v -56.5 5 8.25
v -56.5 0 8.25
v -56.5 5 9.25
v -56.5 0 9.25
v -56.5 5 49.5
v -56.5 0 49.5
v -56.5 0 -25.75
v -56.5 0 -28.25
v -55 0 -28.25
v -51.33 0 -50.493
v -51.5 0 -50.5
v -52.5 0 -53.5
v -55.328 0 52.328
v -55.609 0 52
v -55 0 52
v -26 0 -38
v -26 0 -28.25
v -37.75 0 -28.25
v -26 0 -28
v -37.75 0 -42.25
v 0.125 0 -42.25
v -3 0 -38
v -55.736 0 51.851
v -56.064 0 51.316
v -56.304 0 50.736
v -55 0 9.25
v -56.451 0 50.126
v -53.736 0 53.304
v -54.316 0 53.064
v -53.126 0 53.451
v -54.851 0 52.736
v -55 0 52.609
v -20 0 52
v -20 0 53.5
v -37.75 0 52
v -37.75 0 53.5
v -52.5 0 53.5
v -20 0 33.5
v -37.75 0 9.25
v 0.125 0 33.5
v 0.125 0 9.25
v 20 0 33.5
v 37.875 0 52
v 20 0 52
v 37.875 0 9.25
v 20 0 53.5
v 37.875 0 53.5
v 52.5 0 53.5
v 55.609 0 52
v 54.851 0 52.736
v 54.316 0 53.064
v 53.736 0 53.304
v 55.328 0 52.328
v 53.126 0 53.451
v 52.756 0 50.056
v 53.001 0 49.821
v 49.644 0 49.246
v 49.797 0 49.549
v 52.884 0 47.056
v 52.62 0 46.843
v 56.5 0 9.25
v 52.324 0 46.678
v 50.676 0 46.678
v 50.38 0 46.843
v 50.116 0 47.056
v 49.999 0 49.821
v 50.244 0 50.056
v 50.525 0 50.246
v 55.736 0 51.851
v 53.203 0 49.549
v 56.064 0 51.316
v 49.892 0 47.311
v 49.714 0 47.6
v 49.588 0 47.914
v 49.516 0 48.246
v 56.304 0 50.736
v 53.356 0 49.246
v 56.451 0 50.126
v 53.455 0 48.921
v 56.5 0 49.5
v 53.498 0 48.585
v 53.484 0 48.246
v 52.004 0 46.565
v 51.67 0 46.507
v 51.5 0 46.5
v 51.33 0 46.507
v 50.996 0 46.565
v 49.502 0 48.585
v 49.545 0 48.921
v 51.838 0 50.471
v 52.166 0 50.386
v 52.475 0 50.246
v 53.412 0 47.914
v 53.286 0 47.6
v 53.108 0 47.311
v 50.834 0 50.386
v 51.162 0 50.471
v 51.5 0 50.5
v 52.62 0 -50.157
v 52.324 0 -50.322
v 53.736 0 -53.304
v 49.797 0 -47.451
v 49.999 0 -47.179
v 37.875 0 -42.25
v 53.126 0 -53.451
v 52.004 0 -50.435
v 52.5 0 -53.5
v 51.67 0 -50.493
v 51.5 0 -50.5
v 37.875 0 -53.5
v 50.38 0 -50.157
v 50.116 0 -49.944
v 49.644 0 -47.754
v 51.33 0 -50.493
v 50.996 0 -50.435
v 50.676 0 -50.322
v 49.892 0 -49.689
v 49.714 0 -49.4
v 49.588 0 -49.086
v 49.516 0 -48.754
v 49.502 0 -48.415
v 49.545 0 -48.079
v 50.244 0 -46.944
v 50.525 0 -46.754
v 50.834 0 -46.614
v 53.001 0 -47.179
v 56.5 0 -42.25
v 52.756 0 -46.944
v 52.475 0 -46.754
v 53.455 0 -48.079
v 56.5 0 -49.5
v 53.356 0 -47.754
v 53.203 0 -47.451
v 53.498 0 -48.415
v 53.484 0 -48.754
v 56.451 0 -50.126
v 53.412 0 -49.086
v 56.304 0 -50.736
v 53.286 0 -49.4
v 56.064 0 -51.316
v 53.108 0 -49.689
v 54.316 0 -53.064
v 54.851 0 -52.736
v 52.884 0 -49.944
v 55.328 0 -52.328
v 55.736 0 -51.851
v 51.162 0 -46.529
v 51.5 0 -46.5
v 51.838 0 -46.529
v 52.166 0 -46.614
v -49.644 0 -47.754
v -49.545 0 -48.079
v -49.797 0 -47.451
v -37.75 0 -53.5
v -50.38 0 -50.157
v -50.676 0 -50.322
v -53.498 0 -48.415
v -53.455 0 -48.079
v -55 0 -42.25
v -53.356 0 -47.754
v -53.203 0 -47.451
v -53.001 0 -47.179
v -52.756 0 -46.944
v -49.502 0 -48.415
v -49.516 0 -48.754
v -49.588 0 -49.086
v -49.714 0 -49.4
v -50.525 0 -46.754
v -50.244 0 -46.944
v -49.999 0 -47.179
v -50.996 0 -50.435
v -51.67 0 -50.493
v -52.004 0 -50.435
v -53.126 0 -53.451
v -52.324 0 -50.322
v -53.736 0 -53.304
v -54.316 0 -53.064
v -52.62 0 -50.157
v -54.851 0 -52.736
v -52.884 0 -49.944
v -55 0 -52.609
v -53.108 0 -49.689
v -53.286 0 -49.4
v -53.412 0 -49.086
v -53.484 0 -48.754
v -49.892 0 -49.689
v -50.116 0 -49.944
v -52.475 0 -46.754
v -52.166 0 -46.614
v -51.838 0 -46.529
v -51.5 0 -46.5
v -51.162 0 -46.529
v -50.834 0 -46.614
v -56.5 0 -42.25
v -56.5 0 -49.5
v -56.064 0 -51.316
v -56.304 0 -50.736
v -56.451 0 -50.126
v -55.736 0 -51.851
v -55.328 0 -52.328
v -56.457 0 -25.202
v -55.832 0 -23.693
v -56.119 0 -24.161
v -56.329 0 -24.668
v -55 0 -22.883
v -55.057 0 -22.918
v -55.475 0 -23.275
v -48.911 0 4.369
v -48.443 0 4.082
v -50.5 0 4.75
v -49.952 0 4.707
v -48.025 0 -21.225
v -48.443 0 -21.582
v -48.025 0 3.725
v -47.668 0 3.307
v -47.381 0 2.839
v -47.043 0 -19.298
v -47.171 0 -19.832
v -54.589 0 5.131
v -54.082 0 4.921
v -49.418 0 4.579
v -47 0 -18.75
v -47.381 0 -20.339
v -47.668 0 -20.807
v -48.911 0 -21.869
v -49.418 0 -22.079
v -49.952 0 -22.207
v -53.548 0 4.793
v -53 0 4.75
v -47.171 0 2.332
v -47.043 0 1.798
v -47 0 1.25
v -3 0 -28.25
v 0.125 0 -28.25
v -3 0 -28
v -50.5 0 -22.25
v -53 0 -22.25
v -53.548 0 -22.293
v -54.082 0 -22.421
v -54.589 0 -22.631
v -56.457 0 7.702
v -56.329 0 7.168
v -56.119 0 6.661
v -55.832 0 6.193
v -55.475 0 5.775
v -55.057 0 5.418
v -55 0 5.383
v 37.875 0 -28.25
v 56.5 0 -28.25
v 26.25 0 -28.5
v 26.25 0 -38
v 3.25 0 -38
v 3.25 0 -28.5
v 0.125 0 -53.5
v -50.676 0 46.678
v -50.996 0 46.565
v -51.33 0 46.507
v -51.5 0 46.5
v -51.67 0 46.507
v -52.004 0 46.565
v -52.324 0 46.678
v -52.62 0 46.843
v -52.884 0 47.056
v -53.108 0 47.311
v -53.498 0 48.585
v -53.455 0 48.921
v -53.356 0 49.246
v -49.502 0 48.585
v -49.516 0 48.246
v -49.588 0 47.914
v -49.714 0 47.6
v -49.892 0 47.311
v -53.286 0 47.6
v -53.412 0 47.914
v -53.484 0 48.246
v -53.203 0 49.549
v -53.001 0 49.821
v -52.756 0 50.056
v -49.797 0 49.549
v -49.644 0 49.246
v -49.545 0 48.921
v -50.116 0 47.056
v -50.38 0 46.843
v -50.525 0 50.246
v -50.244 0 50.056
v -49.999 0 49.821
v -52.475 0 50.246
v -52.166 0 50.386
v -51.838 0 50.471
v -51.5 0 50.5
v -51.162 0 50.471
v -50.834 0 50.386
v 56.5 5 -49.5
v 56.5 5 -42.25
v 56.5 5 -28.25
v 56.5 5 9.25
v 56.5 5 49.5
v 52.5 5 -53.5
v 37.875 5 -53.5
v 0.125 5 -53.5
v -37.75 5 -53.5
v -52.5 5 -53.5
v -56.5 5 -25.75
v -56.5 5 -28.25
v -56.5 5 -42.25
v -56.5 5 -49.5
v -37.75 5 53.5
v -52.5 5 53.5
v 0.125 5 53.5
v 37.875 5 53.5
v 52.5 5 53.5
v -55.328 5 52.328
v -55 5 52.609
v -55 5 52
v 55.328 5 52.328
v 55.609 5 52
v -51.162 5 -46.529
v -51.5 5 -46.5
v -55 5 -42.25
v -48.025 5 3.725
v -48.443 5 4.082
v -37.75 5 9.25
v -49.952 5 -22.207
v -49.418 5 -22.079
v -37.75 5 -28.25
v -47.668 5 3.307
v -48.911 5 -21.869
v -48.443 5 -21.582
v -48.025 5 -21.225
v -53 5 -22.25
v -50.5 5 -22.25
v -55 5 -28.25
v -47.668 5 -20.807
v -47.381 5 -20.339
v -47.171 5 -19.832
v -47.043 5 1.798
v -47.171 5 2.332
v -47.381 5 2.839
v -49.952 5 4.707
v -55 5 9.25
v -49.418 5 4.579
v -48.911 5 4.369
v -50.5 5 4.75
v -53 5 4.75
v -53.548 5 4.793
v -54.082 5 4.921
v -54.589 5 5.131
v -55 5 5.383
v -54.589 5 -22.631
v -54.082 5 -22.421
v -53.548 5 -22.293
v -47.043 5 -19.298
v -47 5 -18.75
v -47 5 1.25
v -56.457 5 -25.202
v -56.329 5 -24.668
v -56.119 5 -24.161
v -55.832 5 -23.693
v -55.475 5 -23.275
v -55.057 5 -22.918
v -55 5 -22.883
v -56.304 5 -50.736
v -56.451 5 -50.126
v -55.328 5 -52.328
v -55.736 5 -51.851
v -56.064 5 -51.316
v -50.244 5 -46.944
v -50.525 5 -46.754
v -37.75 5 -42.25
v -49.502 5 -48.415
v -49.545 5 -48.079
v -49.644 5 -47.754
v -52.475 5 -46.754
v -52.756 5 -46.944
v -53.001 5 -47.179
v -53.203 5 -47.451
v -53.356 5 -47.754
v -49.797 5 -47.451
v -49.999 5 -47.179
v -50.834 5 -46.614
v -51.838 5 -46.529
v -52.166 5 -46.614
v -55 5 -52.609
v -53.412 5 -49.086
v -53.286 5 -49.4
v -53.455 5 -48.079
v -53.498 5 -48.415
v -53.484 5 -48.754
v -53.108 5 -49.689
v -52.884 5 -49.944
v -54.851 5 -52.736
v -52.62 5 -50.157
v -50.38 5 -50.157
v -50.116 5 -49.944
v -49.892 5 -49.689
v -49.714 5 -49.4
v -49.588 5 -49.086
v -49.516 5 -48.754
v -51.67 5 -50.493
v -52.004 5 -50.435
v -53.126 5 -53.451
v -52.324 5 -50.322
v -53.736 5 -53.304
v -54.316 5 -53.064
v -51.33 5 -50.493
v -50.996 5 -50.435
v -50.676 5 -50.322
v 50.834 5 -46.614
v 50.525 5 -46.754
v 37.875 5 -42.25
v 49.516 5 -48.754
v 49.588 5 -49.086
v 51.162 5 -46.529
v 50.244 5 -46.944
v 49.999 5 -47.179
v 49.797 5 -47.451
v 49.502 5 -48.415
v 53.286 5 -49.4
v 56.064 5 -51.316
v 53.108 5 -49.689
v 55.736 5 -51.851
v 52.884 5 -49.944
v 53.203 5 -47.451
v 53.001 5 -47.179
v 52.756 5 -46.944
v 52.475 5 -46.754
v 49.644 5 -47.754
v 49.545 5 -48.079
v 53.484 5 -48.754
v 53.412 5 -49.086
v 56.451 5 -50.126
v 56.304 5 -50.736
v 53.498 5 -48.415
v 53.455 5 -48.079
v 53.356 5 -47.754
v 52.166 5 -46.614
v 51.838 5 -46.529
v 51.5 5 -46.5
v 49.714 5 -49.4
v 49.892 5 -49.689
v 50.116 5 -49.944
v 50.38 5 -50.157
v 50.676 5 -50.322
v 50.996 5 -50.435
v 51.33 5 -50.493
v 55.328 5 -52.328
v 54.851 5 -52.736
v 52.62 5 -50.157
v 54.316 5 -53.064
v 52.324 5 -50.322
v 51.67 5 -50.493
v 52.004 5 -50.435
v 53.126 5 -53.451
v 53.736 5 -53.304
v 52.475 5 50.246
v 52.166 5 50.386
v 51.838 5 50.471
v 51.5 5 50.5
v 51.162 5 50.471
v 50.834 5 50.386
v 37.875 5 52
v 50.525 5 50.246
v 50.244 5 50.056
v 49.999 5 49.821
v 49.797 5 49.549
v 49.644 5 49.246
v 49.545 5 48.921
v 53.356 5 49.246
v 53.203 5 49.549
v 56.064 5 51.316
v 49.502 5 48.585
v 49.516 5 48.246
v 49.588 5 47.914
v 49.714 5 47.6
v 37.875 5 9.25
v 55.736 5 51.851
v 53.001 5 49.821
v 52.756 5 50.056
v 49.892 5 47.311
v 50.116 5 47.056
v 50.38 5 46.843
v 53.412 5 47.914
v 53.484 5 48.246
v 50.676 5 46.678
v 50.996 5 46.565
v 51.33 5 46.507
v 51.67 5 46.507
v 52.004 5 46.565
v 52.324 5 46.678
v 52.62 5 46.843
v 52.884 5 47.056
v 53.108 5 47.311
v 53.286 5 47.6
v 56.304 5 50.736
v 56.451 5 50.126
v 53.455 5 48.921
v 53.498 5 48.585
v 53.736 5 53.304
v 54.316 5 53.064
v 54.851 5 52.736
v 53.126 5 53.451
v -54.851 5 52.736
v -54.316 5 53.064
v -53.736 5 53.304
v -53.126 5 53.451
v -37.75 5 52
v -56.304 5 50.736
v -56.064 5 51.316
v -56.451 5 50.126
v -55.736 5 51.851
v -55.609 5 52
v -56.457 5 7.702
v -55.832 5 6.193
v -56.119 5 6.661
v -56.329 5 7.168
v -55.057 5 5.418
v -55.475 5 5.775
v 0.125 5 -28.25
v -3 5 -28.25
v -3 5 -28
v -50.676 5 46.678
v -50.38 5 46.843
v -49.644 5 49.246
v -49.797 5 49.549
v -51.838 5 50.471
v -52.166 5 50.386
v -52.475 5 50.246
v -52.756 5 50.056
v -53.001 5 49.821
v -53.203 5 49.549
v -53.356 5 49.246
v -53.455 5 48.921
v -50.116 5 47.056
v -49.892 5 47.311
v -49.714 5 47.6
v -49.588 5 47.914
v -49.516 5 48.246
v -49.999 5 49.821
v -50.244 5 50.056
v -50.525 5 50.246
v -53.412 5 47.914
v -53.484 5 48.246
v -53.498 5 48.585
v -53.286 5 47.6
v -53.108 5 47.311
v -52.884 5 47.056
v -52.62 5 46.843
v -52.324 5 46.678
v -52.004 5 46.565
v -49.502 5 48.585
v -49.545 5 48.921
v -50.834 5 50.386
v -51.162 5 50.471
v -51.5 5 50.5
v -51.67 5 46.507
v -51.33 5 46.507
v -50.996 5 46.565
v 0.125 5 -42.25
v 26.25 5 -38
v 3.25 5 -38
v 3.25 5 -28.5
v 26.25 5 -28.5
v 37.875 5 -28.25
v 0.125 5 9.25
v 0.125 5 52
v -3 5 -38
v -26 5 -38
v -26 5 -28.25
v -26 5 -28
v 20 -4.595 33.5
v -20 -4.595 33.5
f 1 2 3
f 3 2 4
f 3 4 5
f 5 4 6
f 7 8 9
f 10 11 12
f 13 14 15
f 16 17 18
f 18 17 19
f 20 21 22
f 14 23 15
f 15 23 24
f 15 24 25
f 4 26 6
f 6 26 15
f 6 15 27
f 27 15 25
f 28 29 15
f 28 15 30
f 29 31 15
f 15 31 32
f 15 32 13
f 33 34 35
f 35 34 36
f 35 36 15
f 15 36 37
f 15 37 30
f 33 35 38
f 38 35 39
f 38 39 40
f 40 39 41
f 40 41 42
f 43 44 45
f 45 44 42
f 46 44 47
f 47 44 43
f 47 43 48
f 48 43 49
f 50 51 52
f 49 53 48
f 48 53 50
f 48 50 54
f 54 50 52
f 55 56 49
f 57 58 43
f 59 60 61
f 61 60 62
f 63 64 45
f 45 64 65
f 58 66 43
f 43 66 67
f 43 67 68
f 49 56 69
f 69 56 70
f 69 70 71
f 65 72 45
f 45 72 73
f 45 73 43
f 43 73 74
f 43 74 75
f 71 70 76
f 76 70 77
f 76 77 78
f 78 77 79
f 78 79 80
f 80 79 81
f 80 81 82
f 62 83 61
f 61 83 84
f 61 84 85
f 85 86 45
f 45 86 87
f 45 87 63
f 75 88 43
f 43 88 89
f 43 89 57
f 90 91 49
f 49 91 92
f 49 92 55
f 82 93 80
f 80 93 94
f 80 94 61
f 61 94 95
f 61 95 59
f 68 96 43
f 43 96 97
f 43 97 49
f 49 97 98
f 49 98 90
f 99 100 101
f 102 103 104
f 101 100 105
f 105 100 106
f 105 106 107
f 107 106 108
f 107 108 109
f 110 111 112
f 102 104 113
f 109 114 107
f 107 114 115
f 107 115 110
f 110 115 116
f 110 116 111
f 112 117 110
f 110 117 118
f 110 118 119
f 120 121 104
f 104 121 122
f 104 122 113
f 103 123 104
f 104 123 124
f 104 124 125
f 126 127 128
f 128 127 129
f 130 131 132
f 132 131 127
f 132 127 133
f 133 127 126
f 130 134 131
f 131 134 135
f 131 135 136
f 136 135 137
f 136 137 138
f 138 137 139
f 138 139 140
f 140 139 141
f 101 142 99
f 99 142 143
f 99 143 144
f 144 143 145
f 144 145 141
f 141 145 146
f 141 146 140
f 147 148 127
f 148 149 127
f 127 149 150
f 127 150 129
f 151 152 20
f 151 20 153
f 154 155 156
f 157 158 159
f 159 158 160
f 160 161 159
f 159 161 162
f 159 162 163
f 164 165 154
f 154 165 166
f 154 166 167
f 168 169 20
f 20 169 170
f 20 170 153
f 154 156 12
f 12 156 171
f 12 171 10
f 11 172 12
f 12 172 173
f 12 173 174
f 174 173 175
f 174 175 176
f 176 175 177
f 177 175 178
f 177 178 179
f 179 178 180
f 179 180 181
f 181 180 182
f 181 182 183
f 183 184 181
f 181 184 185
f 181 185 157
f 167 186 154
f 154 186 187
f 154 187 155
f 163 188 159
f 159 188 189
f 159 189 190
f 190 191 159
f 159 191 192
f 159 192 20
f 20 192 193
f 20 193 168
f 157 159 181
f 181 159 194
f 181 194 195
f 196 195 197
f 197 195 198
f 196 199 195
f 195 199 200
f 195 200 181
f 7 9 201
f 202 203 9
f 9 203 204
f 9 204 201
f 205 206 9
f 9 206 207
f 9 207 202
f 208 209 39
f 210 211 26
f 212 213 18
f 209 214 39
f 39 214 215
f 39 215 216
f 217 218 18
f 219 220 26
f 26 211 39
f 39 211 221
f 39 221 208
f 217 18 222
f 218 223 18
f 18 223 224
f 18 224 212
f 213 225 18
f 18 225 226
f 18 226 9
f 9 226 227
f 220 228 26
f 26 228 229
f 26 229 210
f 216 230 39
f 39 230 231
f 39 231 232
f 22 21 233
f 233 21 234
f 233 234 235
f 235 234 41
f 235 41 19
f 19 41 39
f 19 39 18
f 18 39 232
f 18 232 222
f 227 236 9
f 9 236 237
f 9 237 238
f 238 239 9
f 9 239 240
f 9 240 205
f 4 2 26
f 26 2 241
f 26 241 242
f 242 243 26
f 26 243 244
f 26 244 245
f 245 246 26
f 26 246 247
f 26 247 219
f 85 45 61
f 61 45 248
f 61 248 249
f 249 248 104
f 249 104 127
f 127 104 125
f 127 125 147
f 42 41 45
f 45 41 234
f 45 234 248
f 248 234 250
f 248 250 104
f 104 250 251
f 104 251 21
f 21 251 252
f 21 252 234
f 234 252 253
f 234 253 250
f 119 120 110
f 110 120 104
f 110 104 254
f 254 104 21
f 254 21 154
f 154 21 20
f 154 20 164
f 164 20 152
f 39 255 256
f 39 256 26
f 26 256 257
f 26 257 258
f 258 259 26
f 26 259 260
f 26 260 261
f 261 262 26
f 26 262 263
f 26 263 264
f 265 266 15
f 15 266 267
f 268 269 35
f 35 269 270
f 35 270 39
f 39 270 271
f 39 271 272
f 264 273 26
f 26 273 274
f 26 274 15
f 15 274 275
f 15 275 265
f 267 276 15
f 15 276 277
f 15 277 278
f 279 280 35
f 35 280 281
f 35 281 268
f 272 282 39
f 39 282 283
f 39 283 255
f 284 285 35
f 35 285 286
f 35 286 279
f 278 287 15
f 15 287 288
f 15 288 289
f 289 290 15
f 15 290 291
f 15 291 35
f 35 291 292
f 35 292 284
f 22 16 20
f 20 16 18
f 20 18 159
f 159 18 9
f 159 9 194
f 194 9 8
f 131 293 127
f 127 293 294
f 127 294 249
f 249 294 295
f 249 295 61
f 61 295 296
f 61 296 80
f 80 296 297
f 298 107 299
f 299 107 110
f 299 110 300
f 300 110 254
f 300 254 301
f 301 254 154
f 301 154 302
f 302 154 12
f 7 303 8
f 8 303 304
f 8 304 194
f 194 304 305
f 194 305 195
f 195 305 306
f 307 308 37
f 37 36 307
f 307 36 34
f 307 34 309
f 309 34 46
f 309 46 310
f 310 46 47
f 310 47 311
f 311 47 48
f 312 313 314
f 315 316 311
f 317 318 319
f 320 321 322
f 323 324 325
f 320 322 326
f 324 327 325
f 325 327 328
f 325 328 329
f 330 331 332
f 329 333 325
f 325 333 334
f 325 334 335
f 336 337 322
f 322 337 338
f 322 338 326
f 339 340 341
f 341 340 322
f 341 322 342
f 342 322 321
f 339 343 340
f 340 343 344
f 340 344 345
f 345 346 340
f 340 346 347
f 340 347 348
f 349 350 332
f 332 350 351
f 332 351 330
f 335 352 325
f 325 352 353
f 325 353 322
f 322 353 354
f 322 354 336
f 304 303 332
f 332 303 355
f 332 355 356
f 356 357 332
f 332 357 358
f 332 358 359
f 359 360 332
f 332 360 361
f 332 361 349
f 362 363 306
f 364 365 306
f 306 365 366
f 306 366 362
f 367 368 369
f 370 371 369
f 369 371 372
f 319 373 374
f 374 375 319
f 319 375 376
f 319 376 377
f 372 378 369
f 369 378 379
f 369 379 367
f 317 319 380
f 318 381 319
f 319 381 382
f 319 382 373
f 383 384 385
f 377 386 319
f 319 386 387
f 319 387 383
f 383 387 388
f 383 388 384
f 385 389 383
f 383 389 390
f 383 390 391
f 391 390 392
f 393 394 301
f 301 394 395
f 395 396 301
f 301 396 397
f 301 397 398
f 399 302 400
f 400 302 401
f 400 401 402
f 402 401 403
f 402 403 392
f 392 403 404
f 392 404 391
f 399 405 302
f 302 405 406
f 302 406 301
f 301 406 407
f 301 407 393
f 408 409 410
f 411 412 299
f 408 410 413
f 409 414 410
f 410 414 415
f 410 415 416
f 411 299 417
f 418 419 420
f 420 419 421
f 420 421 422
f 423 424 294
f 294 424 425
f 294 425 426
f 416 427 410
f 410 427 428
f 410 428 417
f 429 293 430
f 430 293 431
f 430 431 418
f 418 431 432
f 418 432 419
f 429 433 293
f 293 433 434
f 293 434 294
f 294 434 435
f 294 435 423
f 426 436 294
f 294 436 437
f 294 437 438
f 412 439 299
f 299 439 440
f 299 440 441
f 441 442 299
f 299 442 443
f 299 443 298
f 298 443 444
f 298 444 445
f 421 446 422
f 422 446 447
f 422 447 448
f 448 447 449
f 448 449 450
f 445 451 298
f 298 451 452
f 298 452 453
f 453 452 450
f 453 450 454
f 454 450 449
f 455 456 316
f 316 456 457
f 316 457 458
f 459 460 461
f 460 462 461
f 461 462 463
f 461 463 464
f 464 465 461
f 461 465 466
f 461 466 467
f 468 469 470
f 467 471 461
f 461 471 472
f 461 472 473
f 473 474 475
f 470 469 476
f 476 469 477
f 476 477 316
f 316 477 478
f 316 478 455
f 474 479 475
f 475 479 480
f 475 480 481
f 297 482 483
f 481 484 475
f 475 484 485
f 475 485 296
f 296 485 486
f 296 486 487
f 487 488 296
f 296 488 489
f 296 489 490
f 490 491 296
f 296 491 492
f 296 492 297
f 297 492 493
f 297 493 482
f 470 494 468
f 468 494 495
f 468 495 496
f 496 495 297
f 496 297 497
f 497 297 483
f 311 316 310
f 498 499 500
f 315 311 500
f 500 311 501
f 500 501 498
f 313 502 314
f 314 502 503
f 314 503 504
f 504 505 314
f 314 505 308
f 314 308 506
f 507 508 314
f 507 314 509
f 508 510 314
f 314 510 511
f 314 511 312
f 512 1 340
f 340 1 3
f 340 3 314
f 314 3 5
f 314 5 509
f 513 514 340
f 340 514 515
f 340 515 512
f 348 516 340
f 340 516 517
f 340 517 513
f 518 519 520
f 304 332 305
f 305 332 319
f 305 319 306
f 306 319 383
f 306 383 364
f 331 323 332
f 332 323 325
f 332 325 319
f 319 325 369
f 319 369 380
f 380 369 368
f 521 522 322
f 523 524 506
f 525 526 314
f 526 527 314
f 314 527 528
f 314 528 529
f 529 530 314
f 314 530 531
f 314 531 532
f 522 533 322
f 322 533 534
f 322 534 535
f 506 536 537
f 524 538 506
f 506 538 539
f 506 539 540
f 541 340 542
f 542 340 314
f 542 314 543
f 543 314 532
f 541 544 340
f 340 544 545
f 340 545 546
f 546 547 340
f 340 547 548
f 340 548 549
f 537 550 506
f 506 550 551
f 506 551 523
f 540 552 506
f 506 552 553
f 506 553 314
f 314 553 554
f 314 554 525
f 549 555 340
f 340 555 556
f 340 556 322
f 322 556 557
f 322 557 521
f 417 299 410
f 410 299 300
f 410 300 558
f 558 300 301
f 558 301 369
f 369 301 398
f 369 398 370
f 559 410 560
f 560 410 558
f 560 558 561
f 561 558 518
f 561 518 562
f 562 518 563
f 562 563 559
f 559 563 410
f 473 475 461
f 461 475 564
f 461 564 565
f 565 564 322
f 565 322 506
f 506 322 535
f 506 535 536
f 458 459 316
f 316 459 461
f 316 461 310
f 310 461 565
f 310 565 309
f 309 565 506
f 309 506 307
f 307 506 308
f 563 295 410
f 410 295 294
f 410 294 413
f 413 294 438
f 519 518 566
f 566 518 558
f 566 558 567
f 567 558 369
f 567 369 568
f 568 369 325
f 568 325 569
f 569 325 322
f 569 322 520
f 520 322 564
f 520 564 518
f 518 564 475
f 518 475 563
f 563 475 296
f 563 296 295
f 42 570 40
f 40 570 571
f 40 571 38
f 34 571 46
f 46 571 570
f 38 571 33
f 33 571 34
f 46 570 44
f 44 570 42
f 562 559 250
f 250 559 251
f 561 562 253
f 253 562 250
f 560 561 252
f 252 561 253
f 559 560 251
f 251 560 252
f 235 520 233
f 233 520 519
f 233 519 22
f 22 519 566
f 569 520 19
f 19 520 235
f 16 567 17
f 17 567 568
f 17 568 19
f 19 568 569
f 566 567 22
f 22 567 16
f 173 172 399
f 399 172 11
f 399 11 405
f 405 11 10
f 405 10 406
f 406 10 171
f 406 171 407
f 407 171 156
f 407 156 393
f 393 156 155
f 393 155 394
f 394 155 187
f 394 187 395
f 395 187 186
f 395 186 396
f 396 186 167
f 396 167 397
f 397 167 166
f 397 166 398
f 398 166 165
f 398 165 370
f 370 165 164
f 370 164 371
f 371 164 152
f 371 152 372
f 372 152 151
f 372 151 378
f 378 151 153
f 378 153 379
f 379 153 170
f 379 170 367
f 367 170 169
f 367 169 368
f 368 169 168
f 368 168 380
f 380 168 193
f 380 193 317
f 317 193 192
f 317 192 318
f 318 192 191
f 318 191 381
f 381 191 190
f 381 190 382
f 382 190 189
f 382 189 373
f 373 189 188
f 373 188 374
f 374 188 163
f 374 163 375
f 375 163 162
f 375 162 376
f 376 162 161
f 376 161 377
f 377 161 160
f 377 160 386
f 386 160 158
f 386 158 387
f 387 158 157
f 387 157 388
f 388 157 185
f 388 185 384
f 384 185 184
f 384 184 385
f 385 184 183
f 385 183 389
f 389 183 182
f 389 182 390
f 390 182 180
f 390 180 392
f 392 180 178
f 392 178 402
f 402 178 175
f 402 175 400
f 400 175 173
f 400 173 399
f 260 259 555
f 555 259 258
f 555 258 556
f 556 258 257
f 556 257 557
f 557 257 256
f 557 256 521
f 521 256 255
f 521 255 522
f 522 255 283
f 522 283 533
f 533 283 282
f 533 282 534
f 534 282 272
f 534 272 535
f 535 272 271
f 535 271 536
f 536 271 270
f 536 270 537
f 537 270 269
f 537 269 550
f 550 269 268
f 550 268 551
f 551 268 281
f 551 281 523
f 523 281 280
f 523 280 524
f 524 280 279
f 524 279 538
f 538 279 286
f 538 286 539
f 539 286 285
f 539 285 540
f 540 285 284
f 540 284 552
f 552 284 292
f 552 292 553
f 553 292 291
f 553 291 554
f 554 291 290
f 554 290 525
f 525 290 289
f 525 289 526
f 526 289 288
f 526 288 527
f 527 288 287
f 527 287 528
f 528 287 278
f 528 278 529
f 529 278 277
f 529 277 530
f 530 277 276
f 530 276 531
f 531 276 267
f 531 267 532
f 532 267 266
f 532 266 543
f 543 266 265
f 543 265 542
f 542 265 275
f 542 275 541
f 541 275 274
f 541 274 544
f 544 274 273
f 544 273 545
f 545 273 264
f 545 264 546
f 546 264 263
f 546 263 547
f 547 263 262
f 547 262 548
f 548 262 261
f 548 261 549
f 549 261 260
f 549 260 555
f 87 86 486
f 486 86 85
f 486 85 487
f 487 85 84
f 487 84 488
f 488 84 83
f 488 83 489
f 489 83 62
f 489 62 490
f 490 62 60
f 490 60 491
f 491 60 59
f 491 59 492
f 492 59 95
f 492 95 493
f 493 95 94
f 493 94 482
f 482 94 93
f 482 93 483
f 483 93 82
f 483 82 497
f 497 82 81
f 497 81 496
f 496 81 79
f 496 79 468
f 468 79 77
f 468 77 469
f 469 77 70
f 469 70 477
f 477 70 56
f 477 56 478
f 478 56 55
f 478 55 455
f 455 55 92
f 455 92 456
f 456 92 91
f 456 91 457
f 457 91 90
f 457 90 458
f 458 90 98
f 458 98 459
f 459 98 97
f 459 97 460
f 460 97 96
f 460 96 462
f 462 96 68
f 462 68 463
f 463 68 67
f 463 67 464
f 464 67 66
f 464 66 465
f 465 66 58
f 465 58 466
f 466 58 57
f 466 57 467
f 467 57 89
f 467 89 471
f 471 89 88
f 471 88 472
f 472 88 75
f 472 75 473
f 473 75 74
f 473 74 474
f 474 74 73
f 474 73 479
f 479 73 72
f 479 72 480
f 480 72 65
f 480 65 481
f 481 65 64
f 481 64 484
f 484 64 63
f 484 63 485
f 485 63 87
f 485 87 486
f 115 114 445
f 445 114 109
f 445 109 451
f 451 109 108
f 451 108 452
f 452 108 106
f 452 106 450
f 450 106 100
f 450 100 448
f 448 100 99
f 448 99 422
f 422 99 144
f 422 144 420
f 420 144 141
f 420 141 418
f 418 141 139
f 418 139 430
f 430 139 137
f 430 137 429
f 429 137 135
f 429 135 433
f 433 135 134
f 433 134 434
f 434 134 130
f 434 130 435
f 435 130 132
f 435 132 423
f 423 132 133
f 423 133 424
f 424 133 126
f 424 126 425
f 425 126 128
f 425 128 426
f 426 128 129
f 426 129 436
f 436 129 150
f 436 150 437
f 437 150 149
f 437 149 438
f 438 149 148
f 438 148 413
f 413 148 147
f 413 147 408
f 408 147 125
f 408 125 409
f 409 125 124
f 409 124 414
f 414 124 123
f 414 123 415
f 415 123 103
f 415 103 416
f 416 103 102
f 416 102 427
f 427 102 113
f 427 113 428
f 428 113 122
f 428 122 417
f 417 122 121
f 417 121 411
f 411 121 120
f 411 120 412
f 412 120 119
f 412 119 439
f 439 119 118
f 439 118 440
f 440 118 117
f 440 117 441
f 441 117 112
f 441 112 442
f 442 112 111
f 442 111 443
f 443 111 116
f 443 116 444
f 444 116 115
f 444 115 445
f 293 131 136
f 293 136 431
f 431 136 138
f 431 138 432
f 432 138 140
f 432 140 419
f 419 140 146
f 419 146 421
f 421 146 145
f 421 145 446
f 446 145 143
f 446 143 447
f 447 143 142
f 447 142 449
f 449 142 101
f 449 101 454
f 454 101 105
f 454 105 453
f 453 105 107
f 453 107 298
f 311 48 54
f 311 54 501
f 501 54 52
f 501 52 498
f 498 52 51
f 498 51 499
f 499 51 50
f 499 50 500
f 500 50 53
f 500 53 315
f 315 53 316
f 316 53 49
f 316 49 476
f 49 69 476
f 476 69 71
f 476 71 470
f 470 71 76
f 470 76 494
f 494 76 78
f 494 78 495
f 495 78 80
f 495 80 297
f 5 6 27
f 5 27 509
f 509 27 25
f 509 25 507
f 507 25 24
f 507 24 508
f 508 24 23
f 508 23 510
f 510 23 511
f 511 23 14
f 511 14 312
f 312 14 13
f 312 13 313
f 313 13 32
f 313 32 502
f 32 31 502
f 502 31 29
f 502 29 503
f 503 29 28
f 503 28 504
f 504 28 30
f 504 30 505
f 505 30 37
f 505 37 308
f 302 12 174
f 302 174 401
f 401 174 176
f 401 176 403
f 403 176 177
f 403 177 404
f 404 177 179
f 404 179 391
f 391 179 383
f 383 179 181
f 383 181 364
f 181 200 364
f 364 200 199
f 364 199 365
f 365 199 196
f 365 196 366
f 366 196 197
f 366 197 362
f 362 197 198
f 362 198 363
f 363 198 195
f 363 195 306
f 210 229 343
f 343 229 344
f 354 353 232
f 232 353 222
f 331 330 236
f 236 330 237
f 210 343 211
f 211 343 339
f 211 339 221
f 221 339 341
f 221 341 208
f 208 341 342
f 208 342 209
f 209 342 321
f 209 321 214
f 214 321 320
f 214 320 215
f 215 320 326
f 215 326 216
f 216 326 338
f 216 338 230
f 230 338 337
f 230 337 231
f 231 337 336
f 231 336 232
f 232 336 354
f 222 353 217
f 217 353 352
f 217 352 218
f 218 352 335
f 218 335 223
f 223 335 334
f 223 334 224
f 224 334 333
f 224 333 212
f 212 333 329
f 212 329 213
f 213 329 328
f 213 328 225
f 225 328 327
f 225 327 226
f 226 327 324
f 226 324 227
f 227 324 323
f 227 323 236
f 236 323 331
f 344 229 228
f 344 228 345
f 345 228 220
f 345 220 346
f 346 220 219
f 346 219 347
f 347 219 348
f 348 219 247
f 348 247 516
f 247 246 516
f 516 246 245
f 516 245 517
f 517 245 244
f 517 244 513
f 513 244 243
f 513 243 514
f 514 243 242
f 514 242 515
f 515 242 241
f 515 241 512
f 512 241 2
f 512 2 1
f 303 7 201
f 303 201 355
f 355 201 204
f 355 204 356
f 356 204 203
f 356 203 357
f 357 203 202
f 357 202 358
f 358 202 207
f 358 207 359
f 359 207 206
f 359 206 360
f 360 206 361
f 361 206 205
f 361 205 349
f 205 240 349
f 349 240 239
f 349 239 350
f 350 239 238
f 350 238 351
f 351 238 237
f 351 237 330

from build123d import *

# Parameters (mm, degrees)
SKETCH1_W                  = 113
SKETCH1_H                  = 107
MAIN_BODY_BACK_PLATE_DEPTH = 5
HEIGHT_ADJUST_DEPTH        = 20
SKETCH4_W                  = 23
SKETCH4_H                  = 10
SKETCH4_H_2                = 9.5
HOLE_POSTITIONS_DEPTH      = 40
SKETCH5_R                  = 2
SCREW_HOLES_DEPTH          = 10.59530888
FILLET1_R                  = 4
SKETCH6_W                  = 9.5
SKETCH6_H                  = 27
CUT_EXTRUDE1_DEPTH         = 10
FILLET2_R                  = 3.5


with BuildPart() as part:
    # Sketch1 → Main Body Back Plate (new body)
    with BuildSketch(Plane(origin=(0, 0, 0), x_dir=(1, 0, 0), z_dir=(0, 1, 0))):
        Rectangle(SKETCH1_W, SKETCH1_H)
    extrude(amount=MAIN_BODY_BACK_PLATE_DEPTH)

    # Sketch3 → Height Adjust (add, symmetric)
    with BuildSketch(Plane.ZY):
        Polygon((33.5, 0), (33.5, -4.59530888), (53.5, 0), align=None)
    extrude(amount=HEIGHT_ADJUST_DEPTH, both=True)

    # Sketch4 → Hole Postitions (cut)
    with BuildSketch(Plane(origin=(0, 5, 0), x_dir=(1, 0, 0), z_dir=(0, 1, 0))):
        with Locations((-14.5, 33)):
            Rectangle(SKETCH4_W, SKETCH4_H)
        with Locations((14.75, 33.25)):
            Rectangle(SKETCH4_W, SKETCH4_H_2)
    extrude(amount=-HOLE_POSTITIONS_DEPTH, mode=Mode.SUBTRACT)

    # Sketch5 → Screw Holes (cut, through all)
    with BuildSketch(Plane(origin=(0, 5, 0), x_dir=(1, 0, 0), z_dir=(0, 1, 0))):
        with Locations((-51.5, 48.5)):
            Circle(SKETCH5_R)
        with Locations((-51.5, -48.5)):
            Circle(SKETCH5_R)
        with Locations((51.5, -48.5)):
            Circle(SKETCH5_R)
        with Locations((51.5, 48.5)):
            Circle(SKETCH5_R)
    extrude(amount=-SCREW_HOLES_DEPTH, mode=Mode.SUBTRACT)

    # Fillet1
    fillet1_edges = [part.edges().sort_by_distance(p)[0] for p in [
        (56.5, 2.5, 53.5),
        (-56.5, 2.5, 53.5),
        (-56.5, 2.5, -53.5),
        (56.5, 2.5, -53.5),
    ]]
    fillet(fillet1_edges, radius=FILLET1_R)

    # Sketch6 → Cut-Extrude1 (cut)
    with BuildSketch(Plane.XZ):
        with Locations((-51.75, -8.75)):
            Rectangle(SKETCH6_W, SKETCH6_H)
    extrude(amount=-CUT_EXTRUDE1_DEPTH, mode=Mode.SUBTRACT)

    # Fillet2
    fillet2_edges = [part.edges().sort_by_distance(p)[0] for p in [
        (-56.5, 2.5, -22.25),
        (-56.5, 2.5, 4.75),
        (-47, 2.5, 4.75),
        (-47, 2.5, -22.25),
    ]]
    fillet(fillet2_edges, radius=FILLET2_R)


solid = part.part
